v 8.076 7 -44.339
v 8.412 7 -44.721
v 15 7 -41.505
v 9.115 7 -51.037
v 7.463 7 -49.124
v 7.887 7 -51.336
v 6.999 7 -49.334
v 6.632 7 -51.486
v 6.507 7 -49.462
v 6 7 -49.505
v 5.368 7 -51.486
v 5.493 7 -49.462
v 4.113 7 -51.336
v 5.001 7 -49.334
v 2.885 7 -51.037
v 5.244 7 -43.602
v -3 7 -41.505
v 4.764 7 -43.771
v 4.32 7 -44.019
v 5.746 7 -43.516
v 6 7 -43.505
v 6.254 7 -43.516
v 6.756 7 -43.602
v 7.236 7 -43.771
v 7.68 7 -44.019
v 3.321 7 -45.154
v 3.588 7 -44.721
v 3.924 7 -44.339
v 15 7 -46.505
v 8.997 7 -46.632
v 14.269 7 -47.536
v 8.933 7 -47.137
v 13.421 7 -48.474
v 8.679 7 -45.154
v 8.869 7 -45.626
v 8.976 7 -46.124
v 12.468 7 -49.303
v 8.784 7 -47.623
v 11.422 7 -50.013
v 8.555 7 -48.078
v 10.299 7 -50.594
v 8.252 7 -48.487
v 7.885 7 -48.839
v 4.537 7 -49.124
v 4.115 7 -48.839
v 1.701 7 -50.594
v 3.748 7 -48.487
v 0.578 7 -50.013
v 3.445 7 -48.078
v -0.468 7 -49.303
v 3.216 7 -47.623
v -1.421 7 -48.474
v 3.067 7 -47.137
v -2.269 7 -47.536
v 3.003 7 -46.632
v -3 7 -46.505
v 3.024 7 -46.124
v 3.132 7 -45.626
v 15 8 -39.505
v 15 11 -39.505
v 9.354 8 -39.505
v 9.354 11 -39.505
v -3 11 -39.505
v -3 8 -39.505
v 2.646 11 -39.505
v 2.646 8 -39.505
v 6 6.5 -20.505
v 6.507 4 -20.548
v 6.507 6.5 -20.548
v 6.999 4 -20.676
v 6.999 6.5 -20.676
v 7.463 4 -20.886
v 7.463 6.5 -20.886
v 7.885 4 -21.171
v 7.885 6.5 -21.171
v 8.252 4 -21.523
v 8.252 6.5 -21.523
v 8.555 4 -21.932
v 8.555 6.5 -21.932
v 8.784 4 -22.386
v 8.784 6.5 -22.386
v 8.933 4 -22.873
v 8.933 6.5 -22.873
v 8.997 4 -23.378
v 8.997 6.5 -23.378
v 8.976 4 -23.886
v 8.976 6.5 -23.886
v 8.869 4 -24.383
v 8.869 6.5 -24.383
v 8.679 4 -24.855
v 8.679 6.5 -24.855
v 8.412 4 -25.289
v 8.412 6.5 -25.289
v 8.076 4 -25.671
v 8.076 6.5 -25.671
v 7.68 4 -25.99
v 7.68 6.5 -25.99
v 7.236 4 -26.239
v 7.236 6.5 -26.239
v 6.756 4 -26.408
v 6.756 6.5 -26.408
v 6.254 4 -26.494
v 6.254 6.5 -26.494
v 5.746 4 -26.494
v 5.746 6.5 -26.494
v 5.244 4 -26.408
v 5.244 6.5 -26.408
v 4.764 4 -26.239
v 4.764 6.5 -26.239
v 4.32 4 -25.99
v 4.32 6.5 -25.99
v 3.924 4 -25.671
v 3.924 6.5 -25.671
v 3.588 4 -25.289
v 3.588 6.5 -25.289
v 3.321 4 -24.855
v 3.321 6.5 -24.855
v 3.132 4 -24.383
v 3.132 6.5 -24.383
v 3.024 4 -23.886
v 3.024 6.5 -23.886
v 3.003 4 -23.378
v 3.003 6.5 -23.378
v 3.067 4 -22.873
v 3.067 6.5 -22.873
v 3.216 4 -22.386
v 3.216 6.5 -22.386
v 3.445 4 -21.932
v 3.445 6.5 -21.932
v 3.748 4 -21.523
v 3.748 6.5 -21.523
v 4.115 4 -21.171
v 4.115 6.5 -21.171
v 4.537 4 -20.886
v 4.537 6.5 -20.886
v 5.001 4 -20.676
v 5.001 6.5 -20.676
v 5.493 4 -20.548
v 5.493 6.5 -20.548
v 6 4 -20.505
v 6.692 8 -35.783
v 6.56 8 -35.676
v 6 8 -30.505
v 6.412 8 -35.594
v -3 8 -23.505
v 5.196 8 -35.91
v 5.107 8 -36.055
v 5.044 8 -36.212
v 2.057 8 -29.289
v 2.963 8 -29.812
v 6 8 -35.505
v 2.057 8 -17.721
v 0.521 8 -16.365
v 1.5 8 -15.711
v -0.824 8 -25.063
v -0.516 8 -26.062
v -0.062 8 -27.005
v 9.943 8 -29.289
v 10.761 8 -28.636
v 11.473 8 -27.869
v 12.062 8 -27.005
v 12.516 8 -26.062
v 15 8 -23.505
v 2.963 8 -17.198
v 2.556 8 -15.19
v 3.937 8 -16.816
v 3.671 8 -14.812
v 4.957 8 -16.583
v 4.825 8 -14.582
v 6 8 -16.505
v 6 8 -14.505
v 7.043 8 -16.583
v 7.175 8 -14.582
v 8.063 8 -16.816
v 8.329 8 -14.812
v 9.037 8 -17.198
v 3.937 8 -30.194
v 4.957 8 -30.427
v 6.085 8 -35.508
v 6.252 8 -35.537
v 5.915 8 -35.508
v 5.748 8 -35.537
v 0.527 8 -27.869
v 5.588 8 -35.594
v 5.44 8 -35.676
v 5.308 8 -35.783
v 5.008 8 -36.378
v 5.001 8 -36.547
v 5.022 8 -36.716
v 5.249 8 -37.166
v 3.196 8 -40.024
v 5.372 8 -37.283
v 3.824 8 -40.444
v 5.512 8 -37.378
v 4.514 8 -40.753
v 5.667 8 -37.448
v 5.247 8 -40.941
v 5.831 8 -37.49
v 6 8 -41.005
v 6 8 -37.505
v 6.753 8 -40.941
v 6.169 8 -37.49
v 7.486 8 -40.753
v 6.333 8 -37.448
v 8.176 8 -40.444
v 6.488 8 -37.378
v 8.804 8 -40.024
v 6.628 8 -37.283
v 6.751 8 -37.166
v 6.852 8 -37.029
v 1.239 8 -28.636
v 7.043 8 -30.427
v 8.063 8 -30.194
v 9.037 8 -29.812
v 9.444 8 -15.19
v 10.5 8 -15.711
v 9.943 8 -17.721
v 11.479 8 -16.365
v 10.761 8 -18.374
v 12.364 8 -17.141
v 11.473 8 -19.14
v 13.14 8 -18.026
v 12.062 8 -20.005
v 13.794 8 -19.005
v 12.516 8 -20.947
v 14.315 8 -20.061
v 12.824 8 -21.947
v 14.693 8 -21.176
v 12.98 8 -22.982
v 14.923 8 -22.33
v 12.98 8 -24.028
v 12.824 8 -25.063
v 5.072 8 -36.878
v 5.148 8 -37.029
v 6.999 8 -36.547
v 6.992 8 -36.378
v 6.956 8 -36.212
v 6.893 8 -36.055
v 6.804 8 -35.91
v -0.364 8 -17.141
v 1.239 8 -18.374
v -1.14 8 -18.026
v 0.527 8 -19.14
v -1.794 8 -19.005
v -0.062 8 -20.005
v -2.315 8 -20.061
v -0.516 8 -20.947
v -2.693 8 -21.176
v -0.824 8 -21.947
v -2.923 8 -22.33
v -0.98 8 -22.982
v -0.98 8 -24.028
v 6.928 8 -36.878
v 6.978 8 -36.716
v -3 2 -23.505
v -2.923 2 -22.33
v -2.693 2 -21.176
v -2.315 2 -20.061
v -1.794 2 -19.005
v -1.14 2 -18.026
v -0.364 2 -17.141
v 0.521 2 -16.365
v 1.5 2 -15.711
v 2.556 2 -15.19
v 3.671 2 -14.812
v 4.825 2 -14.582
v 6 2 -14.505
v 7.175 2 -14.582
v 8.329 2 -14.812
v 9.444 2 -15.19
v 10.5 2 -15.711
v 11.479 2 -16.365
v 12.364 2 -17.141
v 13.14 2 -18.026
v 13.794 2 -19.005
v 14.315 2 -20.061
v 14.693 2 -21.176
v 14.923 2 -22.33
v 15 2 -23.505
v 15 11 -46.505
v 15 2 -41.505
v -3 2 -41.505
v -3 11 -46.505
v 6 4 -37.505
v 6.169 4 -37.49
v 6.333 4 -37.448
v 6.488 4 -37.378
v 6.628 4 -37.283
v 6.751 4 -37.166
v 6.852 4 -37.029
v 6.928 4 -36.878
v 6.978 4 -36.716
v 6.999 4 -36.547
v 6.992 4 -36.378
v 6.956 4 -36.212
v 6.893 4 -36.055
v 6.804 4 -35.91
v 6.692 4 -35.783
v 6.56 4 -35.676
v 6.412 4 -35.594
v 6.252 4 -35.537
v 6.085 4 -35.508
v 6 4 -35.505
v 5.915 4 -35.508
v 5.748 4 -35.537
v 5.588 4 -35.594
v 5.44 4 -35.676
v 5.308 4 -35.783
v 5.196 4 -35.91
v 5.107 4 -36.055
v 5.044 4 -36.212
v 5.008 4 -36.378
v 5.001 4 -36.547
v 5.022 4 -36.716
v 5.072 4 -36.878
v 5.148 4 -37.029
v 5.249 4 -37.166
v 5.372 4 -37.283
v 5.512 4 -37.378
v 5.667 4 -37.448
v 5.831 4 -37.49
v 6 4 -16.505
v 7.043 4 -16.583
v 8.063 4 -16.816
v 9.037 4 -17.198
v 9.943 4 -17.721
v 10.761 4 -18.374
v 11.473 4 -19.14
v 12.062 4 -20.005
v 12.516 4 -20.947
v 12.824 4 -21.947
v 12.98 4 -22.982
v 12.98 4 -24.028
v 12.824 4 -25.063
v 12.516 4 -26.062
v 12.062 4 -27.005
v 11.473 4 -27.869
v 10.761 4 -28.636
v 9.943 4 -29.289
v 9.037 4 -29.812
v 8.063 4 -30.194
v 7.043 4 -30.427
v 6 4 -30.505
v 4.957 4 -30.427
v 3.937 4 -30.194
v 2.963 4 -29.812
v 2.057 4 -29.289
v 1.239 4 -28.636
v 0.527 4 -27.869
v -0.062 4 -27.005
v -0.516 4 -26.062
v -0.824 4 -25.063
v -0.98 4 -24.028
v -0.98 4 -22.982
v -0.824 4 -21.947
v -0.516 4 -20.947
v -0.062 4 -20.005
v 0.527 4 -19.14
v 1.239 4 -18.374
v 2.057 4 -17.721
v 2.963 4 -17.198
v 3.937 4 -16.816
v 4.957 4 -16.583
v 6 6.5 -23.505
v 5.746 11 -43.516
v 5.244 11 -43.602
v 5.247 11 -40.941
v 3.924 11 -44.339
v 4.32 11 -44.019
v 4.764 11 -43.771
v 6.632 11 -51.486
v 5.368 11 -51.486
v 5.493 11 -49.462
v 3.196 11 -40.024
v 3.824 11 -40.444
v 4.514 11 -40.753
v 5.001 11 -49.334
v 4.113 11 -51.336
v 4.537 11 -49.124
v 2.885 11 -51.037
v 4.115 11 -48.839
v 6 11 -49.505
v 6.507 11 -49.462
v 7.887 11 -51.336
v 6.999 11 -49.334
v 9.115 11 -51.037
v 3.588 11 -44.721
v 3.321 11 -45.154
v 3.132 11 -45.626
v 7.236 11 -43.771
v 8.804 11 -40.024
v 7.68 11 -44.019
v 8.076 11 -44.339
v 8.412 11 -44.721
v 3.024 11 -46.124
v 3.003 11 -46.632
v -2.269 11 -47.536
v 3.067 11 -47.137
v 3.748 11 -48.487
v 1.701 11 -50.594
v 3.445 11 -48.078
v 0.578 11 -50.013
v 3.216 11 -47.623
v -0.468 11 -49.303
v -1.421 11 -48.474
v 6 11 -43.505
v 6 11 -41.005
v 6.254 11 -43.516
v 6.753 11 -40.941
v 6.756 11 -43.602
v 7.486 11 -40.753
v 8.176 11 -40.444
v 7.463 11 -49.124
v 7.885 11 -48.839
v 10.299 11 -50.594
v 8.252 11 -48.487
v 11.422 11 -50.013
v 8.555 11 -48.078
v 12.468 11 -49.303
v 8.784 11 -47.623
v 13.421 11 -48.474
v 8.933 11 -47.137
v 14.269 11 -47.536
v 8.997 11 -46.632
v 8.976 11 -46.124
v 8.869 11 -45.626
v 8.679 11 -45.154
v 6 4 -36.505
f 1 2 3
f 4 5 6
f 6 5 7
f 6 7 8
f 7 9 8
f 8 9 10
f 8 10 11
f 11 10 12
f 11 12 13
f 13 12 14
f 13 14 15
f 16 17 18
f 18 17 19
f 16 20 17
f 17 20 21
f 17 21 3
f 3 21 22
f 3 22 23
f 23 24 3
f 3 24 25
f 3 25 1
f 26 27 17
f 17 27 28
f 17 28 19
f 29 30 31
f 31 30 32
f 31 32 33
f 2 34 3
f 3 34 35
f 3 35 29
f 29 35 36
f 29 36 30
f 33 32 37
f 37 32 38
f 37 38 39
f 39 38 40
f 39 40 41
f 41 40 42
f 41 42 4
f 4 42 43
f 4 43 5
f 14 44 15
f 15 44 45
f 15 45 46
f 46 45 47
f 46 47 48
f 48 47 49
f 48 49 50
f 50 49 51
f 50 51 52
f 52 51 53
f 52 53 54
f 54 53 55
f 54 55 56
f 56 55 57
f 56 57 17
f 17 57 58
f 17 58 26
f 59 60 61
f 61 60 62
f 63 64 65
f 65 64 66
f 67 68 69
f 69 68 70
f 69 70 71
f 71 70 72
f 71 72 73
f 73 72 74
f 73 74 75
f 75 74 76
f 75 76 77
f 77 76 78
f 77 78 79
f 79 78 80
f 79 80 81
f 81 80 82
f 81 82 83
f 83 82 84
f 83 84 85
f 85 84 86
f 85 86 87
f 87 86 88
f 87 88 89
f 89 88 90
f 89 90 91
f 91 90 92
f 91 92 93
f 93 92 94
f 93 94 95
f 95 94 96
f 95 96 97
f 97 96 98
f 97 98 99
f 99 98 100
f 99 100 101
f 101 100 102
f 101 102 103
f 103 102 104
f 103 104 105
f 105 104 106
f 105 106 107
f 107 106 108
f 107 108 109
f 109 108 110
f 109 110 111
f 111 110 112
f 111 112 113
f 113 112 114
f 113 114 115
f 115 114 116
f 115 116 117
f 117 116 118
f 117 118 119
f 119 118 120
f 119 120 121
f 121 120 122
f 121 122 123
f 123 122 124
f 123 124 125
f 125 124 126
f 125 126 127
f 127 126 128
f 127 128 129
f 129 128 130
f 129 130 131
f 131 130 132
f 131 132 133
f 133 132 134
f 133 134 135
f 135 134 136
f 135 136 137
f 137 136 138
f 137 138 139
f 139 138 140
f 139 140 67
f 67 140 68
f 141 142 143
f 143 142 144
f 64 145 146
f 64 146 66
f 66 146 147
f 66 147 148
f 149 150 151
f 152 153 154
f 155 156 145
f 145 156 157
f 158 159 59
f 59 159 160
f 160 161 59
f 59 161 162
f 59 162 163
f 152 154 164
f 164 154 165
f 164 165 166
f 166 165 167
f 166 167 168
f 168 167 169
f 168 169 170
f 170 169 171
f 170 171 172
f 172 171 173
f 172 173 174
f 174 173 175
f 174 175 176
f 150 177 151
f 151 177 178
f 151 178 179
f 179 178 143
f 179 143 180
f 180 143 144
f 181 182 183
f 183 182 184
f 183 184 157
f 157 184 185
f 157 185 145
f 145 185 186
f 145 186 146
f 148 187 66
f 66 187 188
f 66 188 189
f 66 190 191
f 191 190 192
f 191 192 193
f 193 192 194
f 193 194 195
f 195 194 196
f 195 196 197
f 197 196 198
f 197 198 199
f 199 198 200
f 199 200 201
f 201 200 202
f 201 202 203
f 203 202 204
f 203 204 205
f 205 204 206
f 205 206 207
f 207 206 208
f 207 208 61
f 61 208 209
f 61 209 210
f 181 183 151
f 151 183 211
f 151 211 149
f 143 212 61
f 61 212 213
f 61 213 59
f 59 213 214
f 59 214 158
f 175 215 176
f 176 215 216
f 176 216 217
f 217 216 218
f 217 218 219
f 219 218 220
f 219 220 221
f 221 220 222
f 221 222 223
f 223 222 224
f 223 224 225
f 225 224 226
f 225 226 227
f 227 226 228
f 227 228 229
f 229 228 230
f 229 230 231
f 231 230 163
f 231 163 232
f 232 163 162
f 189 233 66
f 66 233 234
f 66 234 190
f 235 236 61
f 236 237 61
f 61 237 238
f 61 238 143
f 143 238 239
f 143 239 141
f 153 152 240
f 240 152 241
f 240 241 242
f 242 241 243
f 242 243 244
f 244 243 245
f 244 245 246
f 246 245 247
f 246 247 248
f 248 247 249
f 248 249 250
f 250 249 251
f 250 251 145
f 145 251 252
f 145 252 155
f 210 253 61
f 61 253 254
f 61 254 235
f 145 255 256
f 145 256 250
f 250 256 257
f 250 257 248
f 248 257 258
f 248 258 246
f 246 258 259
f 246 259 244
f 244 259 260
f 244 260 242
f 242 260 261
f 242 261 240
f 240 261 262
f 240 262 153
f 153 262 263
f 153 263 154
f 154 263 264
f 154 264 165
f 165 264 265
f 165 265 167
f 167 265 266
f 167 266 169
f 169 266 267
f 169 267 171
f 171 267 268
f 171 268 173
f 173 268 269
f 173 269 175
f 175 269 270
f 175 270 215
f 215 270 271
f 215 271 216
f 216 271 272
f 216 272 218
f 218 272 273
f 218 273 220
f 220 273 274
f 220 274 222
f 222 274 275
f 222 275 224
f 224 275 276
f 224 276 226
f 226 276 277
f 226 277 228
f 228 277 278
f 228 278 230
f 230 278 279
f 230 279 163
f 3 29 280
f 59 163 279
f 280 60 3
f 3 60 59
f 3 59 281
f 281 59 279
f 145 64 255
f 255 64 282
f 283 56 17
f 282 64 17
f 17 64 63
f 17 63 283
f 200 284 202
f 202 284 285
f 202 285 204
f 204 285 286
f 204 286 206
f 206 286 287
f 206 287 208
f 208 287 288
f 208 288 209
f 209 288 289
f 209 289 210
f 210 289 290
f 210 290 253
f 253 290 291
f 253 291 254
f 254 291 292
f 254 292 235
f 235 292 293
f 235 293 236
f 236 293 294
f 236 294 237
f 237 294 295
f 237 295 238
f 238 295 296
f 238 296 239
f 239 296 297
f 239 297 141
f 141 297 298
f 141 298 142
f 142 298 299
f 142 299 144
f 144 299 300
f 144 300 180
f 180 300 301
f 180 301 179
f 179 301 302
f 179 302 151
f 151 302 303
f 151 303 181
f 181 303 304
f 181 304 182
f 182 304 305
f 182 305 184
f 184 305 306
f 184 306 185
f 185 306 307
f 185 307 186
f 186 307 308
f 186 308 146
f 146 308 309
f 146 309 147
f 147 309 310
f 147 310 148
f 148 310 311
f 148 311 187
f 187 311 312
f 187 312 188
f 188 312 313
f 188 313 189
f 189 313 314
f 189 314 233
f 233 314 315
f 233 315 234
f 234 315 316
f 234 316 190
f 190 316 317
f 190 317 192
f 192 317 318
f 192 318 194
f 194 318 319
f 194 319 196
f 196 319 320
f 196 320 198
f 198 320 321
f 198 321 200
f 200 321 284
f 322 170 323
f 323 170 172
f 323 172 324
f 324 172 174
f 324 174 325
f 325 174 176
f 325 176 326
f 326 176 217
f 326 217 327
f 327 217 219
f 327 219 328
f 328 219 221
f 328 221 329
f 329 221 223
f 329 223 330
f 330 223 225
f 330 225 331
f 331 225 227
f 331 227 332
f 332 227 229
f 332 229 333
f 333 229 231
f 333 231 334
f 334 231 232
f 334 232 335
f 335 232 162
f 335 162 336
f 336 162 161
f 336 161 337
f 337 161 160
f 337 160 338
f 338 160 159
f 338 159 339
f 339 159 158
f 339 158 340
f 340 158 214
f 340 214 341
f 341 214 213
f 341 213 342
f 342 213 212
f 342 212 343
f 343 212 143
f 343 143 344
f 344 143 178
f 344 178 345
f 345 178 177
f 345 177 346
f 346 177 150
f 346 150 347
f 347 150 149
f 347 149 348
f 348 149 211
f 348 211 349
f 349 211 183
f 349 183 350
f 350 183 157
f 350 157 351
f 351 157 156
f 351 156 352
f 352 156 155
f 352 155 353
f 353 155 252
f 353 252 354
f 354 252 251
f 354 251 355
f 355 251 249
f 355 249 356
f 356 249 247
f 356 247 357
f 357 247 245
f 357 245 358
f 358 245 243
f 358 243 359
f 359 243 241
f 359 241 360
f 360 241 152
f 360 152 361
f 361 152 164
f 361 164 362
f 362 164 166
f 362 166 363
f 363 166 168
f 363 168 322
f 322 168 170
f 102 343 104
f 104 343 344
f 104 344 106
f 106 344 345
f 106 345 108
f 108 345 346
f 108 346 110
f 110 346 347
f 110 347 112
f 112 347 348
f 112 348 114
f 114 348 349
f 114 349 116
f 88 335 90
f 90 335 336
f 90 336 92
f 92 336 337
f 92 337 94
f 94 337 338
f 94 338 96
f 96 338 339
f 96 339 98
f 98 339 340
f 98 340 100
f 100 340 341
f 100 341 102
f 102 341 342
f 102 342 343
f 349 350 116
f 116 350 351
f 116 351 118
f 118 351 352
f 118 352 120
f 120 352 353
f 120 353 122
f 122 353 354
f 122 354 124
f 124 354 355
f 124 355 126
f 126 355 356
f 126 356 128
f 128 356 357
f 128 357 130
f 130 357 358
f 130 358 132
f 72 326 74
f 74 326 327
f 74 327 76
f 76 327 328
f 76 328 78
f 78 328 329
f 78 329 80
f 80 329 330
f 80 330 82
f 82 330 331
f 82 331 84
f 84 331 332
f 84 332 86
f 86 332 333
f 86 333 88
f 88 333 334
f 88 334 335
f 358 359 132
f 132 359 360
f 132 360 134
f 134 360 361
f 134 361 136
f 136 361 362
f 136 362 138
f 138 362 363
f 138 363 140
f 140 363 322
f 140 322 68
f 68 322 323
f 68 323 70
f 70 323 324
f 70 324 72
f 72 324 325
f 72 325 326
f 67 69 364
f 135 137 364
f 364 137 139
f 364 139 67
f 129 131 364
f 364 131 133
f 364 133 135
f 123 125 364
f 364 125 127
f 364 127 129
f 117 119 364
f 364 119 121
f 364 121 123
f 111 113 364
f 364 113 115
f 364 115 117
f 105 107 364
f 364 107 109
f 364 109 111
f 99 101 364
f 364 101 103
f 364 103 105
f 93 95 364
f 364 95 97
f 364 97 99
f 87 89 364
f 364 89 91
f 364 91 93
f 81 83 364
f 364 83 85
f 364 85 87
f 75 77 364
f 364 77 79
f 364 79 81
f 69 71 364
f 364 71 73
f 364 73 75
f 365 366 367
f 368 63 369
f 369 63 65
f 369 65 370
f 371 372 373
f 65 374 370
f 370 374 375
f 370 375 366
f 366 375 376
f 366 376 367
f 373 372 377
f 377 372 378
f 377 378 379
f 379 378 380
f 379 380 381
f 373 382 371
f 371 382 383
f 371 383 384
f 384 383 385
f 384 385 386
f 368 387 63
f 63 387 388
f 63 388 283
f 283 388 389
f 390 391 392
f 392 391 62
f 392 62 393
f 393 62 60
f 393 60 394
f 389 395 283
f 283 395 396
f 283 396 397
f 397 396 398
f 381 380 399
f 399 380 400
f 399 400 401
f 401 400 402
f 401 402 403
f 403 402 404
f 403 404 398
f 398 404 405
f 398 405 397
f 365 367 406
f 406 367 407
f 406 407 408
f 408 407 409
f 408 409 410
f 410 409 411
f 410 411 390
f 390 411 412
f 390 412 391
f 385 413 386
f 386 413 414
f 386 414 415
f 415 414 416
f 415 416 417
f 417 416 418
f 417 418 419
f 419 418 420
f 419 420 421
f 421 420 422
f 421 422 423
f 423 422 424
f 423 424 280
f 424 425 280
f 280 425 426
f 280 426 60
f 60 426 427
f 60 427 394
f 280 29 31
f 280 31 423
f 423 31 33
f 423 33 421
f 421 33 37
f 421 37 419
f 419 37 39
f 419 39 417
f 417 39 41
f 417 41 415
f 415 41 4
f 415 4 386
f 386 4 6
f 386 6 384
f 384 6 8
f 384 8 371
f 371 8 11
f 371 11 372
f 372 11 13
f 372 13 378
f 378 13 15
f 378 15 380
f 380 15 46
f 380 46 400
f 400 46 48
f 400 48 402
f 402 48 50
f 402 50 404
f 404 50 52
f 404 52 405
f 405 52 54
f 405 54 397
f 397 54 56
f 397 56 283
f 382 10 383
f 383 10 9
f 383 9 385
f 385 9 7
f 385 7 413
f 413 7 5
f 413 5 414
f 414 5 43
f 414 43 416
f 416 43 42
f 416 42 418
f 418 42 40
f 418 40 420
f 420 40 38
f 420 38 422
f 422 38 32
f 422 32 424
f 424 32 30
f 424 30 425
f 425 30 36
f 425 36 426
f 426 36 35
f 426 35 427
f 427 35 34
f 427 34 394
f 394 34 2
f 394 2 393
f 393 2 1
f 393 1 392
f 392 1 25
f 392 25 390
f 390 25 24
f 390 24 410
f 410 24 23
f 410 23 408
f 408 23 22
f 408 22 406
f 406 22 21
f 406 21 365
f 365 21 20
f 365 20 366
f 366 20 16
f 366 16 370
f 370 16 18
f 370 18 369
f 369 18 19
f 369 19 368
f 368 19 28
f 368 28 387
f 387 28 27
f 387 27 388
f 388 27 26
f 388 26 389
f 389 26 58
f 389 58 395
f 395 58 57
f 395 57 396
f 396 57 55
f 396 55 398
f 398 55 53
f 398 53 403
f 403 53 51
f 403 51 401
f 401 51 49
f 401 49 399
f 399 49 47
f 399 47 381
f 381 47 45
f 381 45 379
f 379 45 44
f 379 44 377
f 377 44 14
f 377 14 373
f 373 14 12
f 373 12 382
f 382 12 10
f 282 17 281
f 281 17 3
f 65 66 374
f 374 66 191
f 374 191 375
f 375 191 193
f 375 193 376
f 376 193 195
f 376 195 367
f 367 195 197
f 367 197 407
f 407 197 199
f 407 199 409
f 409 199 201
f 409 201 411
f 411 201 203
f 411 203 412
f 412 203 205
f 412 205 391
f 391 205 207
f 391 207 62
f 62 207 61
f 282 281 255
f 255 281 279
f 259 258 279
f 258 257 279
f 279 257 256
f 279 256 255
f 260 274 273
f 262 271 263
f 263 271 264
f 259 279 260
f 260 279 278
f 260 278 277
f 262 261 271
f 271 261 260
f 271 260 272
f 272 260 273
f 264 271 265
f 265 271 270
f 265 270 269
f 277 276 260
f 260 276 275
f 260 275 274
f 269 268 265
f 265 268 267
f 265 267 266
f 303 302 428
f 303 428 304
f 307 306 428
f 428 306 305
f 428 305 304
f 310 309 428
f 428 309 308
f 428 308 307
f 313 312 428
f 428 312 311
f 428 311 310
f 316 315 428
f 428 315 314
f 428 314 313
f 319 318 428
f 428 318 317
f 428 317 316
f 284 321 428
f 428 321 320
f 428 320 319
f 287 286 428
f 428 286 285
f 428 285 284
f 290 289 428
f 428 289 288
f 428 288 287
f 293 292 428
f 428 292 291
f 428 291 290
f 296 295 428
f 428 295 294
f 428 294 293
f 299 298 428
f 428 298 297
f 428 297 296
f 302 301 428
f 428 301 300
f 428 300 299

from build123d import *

# Parameters (mm, degrees)
SKETCH1_R           = 1
BOSS_EXTRUDE1_DEPTH = 8
SKETCH2_R           = 7
SKETCH2_R_2         = 3
CUT_EXTRUDE1_DEPTH  = 4
SKETCH3_R           = 3
CUT_EXTRUDE2_DEPTH  = 1.5
SKETCH8_R           = 3
BOSS_EXTRUDE4_DEPTH = 3
SKETCH9_W           = 12
SKETCH9_H           = 7
CUT_EXTRUDE5_DEPTH  = 19
SKETCH10_R          = 4.5
CUT_EXTRUDE11_DEPTH = 5
SKETCH12_R          = 3
CUT_EXTRUDE12_DEPTH = 5
SKETCH13_W          = 28.183943327
SKETCH13_H          = 2
CUT_EXTRUDE13_DEPTH = 19
BOSS_EXTRUDE5_REACH = 20
SKETCH14_W          = 8.331719186
SKETCH14_H          = 2


with BuildPart() as part:
    # Sketch1 → Boss-Extrude1 (new body)
    with BuildSketch(Plane(origin=(0, 0, 0), x_dir=(1, 0, 0), z_dir=(0, 1, 0))):
        with BuildLine():
            Line((-3, 53.504881109), (15, 53.504881109))
            Line((15, 53.504881109), (15, 23.504881109))
            ThreePointArc((15, 23.504881109), (6, 14.504881109), (-3, 23.504881109))
            Line((-3, 23.504881109), (-3, 53.504881109))
        make_face()
        with Locations((6, 36.504881109)):
            Circle(SKETCH1_R, mode=Mode.SUBTRACT)
        with Locations((6, 46.504881109)):
            Circle(SKETCH1_R, mode=Mode.SUBTRACT)
    extrude(amount=BOSS_EXTRUDE1_DEPTH)

    # Sketch2 → Cut-Extrude1 (cut)
    with BuildSketch(Plane(origin=(0, 8, 0), x_dir=(1, 0, 0), z_dir=(0, 1, 0))):
        with Locations((6, 23.504881109)):
            Circle(SKETCH2_R)
        with Locations((6, 23.504881109)):
            Circle(SKETCH2_R_2, mode=Mode.SUBTRACT)
    extrude(amount=-CUT_EXTRUDE1_DEPTH, mode=Mode.SUBTRACT)

    # Sketch3 → Cut-Extrude2 (cut)
    with BuildSketch(Plane(origin=(0, 8, 0), x_dir=(1, 0, 0), z_dir=(0, 1, 0))):
        with Locations((6, 23.504881109)):
            Circle(SKETCH3_R)
    extrude(amount=-CUT_EXTRUDE2_DEPTH, mode=Mode.SUBTRACT)

    # Sketch8 → Boss-Extrude4 (add)
    with BuildSketch(Plane(origin=(0, 8, 0), x_dir=(1, 0, 0), z_dir=(0, 1, 0))):
        with BuildLine():
            Line((1, 39.504881109), (11, 39.504881109))
            Line((11, 39.504881109), (15, 39.504881109))
            Line((15, 39.504881109), (15, 46.504881109))
            ThreePointArc((15, 46.504881109), (6, 51.504881109), (-3, 46.504881109))
            Line((-3, 46.504881109), (-3, 39.504881109))
            Line((-3, 39.504881109), (1, 39.504881109))
        make_face()
        with Locations((6, 46.504881109)):
            Circle(SKETCH8_R, mode=Mode.SUBTRACT)
    extrude(amount=BOSS_EXTRUDE4_DEPTH)

    # Sketch9 → Cut-Extrude5 (cut, through all)
    with BuildSketch(Plane(origin=(15, 0, 0), x_dir=(0, 0, -1), z_dir=(1, 0, 0))):
        with Locations((47.504881109, 3.5)):
            Rectangle(SKETCH9_W, SKETCH9_H)
    extrude(amount=-CUT_EXTRUDE5_DEPTH, mode=Mode.SUBTRACT)

    # Sketch10 → Cut-Extrude11 (cut)
    with BuildSketch(Plane(origin=(0, 8, 0), x_dir=(1, 0, 0), z_dir=(0, 1, 0))):
        with Locations((6, 36.504881109)):
            Circle(SKETCH10_R)
    extrude(amount=CUT_EXTRUDE11_DEPTH, mode=Mode.SUBTRACT)

    # Sketch12 → Cut-Extrude12 (cut)
    with BuildSketch(Plane(origin=(0, 8, 0), x_dir=(1, 0, 0), z_dir=(0, 1, 0))):
        with Locations((6, 46.504881109)):
            Circle(SKETCH12_R)
        with BuildLine():
            Line((-3, 53.504881109), (15, 53.504881109))
            Line((15, 53.504881109), (15, 46.504881109))
            ThreePointArc((15, 46.504881109), (6, 51.504881109), (-3, 46.504881109))
            Line((-3, 46.504881109), (-3, 53.504881109))
        make_face()
    extrude(amount=-CUT_EXTRUDE12_DEPTH, mode=Mode.SUBTRACT)

    # Sketch13 → Cut-Extrude13 (cut, through all)
    with BuildSketch(Plane(origin=(15, 0, 0), x_dir=(0, 0, -1), z_dir=(1, 0, 0))):
        with Locations((27.412909446, 1)):
            Rectangle(SKETCH13_W, SKETCH13_H)
    extrude(amount=-CUT_EXTRUDE13_DEPTH, mode=Mode.SUBTRACT)

    # Sketch14 → Boss-Extrude5 (add, up to next)
    with BuildSketch(Plane(origin=(15, 0, 0), x_dir=(0, 0, -1), z_dir=(1, 0, 0)), mode=Mode.PRIVATE) as boss_extrude5_sk1:
        with Locations((37.339021516, 3)):
            Rectangle(SKETCH14_W, SKETCH14_H)
    boss_extrude5_tool1 = extrude(boss_extrude5_sk1.sketch, amount=-BOSS_EXTRUDE5_REACH, mode=Mode.PRIVATE) - part.part
    add(boss_extrude5_tool1.solids().sort_by_distance((15, 3, -37.339022))[0])


solid = part.part
